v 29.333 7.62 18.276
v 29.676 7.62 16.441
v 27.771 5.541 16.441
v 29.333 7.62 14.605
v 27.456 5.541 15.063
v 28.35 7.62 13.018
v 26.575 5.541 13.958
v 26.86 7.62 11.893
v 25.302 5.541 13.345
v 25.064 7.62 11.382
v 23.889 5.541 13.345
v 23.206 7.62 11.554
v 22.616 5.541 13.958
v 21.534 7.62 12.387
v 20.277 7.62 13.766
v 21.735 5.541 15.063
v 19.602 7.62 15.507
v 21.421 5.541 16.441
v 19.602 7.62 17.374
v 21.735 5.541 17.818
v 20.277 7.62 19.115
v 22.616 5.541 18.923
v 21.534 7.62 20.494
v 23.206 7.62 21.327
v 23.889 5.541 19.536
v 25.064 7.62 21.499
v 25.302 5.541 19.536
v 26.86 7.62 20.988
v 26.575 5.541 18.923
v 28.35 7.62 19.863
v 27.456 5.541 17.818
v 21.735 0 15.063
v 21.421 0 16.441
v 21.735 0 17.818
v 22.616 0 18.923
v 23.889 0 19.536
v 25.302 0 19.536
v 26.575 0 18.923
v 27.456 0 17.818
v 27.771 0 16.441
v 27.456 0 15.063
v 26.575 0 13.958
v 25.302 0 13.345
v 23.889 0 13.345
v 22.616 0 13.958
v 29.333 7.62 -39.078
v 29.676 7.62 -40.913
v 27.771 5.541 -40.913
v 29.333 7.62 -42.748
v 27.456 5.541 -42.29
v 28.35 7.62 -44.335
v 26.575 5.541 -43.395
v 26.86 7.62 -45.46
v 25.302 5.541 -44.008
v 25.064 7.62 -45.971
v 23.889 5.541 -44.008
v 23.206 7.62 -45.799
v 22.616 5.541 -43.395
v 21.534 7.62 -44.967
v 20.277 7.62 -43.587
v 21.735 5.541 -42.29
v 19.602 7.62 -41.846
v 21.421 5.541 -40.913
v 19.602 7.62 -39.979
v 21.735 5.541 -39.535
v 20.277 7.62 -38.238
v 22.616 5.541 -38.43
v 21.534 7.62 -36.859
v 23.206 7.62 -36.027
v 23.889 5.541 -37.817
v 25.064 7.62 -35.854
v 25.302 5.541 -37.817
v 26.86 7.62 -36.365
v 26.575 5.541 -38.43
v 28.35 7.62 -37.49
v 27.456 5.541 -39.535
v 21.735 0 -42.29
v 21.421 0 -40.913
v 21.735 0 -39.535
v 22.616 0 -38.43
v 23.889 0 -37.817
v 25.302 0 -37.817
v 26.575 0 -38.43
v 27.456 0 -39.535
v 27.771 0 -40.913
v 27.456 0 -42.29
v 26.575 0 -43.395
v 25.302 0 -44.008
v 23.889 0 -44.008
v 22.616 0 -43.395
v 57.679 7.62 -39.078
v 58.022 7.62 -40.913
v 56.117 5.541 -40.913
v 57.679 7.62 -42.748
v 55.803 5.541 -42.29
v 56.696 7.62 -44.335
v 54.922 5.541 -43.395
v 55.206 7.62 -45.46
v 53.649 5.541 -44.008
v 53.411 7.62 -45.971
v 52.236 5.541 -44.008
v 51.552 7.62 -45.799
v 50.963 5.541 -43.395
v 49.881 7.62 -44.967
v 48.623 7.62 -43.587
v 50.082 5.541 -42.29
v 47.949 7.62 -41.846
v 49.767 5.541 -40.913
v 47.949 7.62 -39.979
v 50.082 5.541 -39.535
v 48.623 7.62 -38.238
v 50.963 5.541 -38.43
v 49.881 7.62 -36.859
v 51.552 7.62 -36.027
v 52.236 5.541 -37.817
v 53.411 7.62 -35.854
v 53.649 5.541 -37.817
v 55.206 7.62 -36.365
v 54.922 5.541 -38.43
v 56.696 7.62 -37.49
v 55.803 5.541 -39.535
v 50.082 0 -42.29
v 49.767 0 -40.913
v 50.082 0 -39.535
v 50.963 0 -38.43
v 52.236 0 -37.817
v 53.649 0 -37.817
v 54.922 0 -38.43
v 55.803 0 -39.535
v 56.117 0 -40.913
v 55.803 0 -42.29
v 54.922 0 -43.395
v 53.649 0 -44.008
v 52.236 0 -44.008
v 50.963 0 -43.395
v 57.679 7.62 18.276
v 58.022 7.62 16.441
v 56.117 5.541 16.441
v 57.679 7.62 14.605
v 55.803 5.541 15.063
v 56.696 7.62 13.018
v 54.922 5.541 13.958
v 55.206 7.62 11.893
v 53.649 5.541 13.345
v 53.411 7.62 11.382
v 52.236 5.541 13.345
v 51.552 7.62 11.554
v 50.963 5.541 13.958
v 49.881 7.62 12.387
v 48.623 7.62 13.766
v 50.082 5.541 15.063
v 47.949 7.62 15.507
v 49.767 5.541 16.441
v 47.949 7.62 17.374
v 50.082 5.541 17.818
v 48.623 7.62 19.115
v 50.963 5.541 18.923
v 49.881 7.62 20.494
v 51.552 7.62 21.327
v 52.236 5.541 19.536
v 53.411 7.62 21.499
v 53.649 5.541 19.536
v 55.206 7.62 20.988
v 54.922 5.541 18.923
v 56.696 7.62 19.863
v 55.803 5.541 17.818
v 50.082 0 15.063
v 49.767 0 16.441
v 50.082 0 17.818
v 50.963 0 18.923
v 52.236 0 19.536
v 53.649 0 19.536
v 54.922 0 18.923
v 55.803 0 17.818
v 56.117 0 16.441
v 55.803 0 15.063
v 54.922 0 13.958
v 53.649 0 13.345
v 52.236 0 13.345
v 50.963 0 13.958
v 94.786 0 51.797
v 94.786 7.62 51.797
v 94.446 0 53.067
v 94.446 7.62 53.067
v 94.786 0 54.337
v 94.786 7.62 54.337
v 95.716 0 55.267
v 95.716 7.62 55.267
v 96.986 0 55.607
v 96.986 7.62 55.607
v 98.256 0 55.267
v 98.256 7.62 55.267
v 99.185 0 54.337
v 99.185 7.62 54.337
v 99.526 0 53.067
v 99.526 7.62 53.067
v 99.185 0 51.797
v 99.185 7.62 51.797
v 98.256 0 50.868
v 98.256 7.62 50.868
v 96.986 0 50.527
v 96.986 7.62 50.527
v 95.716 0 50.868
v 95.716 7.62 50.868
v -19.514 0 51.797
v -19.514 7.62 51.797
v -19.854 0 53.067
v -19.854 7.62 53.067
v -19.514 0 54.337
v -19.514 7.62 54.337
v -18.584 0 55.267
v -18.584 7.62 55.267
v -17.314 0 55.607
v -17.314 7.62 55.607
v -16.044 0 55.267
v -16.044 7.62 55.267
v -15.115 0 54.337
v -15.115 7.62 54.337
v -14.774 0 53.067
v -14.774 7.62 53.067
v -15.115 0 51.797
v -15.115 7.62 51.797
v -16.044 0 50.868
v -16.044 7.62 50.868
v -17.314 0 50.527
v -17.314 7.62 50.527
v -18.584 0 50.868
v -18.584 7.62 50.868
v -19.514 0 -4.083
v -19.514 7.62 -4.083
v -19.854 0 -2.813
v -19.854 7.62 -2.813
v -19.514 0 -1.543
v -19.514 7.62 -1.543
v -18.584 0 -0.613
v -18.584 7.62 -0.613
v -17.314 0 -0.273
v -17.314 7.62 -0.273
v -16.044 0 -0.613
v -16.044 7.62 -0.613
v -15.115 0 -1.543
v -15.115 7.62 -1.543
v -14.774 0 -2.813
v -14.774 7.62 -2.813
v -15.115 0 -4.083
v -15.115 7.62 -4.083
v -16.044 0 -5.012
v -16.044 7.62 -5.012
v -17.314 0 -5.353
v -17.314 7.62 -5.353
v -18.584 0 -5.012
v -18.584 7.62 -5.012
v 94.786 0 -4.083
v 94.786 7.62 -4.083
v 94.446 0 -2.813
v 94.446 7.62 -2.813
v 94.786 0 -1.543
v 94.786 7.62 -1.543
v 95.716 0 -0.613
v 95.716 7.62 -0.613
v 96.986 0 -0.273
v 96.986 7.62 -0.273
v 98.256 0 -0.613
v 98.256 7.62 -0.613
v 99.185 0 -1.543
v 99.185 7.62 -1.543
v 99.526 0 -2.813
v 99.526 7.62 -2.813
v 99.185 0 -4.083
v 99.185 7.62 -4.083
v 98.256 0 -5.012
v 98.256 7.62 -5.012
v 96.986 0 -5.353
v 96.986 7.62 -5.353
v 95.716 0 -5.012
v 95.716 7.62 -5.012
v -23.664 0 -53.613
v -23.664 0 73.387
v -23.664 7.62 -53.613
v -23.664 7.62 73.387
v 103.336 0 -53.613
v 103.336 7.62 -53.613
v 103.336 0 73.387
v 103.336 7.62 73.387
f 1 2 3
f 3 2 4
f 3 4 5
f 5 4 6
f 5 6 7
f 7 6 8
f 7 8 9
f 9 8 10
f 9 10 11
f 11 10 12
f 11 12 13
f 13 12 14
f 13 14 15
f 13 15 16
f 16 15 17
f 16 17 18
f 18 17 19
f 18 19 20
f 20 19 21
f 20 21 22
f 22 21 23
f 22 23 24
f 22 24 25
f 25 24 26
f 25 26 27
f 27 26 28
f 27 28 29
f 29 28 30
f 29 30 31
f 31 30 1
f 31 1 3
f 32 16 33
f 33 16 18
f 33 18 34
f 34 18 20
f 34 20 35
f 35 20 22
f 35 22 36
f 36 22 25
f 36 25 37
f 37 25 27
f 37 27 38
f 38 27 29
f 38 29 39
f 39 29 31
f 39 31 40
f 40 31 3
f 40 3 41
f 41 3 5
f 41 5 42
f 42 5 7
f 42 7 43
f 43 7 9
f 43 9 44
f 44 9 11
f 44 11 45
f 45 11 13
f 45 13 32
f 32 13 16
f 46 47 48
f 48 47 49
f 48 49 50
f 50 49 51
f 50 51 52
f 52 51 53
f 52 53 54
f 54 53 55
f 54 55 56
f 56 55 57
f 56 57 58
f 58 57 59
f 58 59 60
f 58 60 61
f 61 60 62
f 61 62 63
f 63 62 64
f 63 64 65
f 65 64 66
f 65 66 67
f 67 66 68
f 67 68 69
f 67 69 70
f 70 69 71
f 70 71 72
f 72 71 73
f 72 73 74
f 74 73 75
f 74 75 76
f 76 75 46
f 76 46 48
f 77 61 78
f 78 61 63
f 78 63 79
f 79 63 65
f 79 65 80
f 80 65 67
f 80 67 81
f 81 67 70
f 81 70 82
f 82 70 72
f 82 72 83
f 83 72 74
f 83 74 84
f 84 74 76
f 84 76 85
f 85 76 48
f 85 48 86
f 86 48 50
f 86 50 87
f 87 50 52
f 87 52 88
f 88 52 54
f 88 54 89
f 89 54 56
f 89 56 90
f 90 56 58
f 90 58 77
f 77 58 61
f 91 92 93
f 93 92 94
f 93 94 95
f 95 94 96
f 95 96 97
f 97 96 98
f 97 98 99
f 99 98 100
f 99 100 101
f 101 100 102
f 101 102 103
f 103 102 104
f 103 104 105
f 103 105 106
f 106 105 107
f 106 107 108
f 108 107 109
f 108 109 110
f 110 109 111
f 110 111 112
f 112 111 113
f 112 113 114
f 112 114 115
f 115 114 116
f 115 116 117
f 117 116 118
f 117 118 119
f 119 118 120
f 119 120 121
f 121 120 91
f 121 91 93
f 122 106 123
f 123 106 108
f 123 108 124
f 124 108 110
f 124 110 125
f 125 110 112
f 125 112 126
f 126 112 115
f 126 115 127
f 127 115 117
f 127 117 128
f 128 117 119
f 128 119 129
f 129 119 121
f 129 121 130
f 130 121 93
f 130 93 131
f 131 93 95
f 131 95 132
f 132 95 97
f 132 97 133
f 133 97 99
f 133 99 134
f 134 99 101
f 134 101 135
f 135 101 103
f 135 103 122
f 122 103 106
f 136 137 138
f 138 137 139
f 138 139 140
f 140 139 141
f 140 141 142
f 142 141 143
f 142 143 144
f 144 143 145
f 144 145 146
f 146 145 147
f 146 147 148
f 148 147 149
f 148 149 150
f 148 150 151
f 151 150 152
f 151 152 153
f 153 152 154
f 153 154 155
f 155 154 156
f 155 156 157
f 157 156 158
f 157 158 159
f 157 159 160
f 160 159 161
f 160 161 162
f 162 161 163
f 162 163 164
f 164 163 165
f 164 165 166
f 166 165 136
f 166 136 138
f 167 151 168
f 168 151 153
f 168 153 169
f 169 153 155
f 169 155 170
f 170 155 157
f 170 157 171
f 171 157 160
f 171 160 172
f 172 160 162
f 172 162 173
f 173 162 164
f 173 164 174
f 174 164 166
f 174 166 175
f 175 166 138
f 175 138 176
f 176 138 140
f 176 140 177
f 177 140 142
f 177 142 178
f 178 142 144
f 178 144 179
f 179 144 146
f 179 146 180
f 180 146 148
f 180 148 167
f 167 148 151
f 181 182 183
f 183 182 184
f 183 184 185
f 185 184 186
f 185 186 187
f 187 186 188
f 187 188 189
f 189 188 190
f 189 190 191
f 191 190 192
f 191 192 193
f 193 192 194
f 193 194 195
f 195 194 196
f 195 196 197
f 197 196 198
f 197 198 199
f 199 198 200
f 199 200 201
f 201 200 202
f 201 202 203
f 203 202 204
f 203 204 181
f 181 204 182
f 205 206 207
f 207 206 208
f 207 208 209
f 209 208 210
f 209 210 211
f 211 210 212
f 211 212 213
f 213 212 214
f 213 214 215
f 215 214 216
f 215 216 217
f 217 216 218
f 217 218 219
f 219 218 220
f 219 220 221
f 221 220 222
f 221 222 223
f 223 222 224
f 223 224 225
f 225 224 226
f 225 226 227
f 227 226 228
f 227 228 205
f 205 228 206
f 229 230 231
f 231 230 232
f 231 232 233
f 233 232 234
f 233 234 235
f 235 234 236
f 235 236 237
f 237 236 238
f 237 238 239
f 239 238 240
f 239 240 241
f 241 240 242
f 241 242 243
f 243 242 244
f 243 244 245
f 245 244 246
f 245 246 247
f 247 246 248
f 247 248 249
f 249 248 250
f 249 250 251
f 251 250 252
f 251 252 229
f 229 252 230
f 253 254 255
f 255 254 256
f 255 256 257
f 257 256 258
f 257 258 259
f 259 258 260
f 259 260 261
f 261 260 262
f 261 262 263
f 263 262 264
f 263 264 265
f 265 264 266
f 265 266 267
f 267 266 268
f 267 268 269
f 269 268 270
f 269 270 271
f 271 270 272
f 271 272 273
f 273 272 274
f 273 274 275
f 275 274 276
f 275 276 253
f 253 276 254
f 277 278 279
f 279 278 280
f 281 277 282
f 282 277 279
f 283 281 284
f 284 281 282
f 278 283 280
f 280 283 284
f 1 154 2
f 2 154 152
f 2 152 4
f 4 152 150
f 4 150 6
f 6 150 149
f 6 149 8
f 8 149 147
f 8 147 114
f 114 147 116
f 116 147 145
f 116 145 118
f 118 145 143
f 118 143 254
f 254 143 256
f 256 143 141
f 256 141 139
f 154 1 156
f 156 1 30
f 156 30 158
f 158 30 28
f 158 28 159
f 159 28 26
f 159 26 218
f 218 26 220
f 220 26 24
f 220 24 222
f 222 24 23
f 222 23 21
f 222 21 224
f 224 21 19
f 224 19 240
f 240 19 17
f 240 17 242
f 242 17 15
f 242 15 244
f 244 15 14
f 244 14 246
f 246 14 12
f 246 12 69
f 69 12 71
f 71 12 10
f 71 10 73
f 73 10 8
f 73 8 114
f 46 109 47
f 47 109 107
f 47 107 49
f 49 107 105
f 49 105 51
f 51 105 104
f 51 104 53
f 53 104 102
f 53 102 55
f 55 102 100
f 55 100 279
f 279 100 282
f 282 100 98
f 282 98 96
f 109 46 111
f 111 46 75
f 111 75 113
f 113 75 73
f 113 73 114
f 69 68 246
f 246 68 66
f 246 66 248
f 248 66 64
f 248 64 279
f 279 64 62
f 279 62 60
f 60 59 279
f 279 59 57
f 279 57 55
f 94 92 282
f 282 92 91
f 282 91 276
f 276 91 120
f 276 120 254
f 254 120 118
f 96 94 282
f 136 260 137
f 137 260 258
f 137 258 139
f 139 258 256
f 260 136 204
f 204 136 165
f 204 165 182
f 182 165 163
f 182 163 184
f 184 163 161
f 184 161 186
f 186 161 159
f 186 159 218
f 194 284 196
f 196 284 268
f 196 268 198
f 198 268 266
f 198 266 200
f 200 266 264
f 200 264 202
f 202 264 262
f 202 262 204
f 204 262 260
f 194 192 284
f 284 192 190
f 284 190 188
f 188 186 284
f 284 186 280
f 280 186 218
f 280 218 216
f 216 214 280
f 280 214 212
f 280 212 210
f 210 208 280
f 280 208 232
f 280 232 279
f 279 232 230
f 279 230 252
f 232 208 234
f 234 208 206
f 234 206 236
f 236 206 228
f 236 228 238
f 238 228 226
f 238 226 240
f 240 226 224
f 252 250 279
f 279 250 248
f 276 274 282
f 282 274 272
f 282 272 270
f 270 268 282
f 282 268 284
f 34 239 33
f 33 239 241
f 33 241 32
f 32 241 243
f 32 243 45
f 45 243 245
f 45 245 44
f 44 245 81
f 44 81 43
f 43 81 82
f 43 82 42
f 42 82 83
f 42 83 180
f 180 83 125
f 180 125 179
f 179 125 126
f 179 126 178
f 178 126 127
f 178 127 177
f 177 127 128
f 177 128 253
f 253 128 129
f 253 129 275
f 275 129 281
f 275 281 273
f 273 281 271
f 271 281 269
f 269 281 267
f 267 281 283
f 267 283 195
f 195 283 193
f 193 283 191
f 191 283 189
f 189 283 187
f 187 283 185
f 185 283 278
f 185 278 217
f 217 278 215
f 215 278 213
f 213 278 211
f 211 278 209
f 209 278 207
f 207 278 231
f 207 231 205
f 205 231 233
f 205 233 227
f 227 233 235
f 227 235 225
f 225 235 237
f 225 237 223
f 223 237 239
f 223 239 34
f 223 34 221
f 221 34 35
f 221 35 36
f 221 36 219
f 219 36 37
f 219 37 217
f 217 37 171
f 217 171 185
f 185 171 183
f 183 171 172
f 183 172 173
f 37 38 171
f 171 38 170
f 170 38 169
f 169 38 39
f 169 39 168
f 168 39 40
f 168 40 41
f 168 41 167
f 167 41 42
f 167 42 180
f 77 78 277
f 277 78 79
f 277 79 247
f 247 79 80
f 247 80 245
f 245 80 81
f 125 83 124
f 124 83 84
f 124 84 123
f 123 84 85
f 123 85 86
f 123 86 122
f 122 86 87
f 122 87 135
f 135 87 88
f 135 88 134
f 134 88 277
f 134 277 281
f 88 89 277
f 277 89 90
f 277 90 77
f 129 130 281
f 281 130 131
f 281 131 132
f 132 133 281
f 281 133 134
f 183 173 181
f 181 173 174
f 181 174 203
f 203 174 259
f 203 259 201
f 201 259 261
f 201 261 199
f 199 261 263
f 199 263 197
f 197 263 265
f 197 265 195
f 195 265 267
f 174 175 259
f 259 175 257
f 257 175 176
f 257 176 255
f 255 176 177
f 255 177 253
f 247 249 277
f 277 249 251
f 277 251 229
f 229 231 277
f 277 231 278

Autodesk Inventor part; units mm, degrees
ref_plane "YZ Plane" through (0, 0, 0) normal (1, 0, 0) x (0, 1, 0)
ref_plane "XZ Plane" through (0, 0, 0) normal (0, 1, 0) x (-1, 0, 0)
ref_plane "XY Plane" through (0, 0, 0) normal (0, 0, 1) x (1, 0, 0)
sketch "Sketch1" plane through (0, 0, 0) normal (0, 1, 0) x (-1, 0, 0)
  line L0 (23.6643, 73.3874) -> (-103.3357, 73.3874)
  line L1 (-103.3357, 73.3874) -> (-103.3357, -53.6126)
  line L2 (-103.3357, -53.6126) -> (23.6643, -53.6126)
  line L3 (23.6643, -53.6126) -> (23.6643, 73.3874)
  point P0 (0, 0)
  dimension "d0" = 127
  dimension "d1" = 127
extrude "Extrusion1" add sketch "Sketch1" along normal blind 7.62
sketch "Sketch2" plane through (0, 7.62, 0) normal (0, 1, 0) x (1, 0, 0)
  line L0 (-23.6643, 53.6126) -> (-23.6643, -73.3874) projected
  line L1 (103.3357, 53.6126) -> (-23.6643, 53.6126) projected
  line L2 (103.3357, -73.3874) -> (103.3357, 53.6126) projected
  point P0 (0, 0)
  point P1 (-17.3143, -53.0674)
  point P2 (-17.3143, 2.8126)
  point P3 (96.9857, -53.0674)
  point P4 (96.9857, 2.8126)
  dimension "d4" = 0
  dimension "d5" = 6.35
  dimension "d6" = 50.8
  dimension "d7" = 55.88
  dimension "d8" = 0
  dimension "d9" = 0
  dimension "d10" = 0
  dimension "d11" = 6.35
hole "Hole1" at (-17.3143, 7.62, 53.0674) at (-17.3143, 7.62, -2.8126) at (96.9857, 7.62, 53.0674) at (96.9857, 7.62, -2.8126) direction (0, -1, 0) diameter 5.08 end through all
sketch "Sketch3" plane through (0, 7.62, 0) normal (0, 1, 0) x (1, 0, 0)
  line L0 (103.3357, 53.6126) -> (-23.6643, 53.6126) projected
  line L1 (-23.6643, 53.6126) -> (-23.6643, -73.3874) projected
  line L2 (103.3357, -73.3874) -> (103.3357, 53.6126) projected
  point P0 (0, 0)
  point P1 (24.5957, 40.9126)
  point P2 (52.9421, 40.9126)
  point P3 (24.5957, -16.4406)
  point P4 (52.9421, -16.4406)
  dimension "d19" = 28.3464
  dimension "d20" = 0
  dimension "d21" = 57.3532
  dimension "d22" = 0
  dimension "d23" = 0
  dimension "d24" = 0
  dimension "d25" = 12.7
  dimension "d26" = 48.26
  dimension "d27" = 50.3936
hole "Hole2" at (24.5957, 7.62, -40.9126) at (52.9421, 7.62, -40.9126) at (24.5957, 7.62, 16.4406) at (52.9421, 7.62, 16.4406) direction (0, -1, 0) diameter 6.35 end through all countersink diameter 10.16 countersink angle 85
properties part number "BatteryTop"
